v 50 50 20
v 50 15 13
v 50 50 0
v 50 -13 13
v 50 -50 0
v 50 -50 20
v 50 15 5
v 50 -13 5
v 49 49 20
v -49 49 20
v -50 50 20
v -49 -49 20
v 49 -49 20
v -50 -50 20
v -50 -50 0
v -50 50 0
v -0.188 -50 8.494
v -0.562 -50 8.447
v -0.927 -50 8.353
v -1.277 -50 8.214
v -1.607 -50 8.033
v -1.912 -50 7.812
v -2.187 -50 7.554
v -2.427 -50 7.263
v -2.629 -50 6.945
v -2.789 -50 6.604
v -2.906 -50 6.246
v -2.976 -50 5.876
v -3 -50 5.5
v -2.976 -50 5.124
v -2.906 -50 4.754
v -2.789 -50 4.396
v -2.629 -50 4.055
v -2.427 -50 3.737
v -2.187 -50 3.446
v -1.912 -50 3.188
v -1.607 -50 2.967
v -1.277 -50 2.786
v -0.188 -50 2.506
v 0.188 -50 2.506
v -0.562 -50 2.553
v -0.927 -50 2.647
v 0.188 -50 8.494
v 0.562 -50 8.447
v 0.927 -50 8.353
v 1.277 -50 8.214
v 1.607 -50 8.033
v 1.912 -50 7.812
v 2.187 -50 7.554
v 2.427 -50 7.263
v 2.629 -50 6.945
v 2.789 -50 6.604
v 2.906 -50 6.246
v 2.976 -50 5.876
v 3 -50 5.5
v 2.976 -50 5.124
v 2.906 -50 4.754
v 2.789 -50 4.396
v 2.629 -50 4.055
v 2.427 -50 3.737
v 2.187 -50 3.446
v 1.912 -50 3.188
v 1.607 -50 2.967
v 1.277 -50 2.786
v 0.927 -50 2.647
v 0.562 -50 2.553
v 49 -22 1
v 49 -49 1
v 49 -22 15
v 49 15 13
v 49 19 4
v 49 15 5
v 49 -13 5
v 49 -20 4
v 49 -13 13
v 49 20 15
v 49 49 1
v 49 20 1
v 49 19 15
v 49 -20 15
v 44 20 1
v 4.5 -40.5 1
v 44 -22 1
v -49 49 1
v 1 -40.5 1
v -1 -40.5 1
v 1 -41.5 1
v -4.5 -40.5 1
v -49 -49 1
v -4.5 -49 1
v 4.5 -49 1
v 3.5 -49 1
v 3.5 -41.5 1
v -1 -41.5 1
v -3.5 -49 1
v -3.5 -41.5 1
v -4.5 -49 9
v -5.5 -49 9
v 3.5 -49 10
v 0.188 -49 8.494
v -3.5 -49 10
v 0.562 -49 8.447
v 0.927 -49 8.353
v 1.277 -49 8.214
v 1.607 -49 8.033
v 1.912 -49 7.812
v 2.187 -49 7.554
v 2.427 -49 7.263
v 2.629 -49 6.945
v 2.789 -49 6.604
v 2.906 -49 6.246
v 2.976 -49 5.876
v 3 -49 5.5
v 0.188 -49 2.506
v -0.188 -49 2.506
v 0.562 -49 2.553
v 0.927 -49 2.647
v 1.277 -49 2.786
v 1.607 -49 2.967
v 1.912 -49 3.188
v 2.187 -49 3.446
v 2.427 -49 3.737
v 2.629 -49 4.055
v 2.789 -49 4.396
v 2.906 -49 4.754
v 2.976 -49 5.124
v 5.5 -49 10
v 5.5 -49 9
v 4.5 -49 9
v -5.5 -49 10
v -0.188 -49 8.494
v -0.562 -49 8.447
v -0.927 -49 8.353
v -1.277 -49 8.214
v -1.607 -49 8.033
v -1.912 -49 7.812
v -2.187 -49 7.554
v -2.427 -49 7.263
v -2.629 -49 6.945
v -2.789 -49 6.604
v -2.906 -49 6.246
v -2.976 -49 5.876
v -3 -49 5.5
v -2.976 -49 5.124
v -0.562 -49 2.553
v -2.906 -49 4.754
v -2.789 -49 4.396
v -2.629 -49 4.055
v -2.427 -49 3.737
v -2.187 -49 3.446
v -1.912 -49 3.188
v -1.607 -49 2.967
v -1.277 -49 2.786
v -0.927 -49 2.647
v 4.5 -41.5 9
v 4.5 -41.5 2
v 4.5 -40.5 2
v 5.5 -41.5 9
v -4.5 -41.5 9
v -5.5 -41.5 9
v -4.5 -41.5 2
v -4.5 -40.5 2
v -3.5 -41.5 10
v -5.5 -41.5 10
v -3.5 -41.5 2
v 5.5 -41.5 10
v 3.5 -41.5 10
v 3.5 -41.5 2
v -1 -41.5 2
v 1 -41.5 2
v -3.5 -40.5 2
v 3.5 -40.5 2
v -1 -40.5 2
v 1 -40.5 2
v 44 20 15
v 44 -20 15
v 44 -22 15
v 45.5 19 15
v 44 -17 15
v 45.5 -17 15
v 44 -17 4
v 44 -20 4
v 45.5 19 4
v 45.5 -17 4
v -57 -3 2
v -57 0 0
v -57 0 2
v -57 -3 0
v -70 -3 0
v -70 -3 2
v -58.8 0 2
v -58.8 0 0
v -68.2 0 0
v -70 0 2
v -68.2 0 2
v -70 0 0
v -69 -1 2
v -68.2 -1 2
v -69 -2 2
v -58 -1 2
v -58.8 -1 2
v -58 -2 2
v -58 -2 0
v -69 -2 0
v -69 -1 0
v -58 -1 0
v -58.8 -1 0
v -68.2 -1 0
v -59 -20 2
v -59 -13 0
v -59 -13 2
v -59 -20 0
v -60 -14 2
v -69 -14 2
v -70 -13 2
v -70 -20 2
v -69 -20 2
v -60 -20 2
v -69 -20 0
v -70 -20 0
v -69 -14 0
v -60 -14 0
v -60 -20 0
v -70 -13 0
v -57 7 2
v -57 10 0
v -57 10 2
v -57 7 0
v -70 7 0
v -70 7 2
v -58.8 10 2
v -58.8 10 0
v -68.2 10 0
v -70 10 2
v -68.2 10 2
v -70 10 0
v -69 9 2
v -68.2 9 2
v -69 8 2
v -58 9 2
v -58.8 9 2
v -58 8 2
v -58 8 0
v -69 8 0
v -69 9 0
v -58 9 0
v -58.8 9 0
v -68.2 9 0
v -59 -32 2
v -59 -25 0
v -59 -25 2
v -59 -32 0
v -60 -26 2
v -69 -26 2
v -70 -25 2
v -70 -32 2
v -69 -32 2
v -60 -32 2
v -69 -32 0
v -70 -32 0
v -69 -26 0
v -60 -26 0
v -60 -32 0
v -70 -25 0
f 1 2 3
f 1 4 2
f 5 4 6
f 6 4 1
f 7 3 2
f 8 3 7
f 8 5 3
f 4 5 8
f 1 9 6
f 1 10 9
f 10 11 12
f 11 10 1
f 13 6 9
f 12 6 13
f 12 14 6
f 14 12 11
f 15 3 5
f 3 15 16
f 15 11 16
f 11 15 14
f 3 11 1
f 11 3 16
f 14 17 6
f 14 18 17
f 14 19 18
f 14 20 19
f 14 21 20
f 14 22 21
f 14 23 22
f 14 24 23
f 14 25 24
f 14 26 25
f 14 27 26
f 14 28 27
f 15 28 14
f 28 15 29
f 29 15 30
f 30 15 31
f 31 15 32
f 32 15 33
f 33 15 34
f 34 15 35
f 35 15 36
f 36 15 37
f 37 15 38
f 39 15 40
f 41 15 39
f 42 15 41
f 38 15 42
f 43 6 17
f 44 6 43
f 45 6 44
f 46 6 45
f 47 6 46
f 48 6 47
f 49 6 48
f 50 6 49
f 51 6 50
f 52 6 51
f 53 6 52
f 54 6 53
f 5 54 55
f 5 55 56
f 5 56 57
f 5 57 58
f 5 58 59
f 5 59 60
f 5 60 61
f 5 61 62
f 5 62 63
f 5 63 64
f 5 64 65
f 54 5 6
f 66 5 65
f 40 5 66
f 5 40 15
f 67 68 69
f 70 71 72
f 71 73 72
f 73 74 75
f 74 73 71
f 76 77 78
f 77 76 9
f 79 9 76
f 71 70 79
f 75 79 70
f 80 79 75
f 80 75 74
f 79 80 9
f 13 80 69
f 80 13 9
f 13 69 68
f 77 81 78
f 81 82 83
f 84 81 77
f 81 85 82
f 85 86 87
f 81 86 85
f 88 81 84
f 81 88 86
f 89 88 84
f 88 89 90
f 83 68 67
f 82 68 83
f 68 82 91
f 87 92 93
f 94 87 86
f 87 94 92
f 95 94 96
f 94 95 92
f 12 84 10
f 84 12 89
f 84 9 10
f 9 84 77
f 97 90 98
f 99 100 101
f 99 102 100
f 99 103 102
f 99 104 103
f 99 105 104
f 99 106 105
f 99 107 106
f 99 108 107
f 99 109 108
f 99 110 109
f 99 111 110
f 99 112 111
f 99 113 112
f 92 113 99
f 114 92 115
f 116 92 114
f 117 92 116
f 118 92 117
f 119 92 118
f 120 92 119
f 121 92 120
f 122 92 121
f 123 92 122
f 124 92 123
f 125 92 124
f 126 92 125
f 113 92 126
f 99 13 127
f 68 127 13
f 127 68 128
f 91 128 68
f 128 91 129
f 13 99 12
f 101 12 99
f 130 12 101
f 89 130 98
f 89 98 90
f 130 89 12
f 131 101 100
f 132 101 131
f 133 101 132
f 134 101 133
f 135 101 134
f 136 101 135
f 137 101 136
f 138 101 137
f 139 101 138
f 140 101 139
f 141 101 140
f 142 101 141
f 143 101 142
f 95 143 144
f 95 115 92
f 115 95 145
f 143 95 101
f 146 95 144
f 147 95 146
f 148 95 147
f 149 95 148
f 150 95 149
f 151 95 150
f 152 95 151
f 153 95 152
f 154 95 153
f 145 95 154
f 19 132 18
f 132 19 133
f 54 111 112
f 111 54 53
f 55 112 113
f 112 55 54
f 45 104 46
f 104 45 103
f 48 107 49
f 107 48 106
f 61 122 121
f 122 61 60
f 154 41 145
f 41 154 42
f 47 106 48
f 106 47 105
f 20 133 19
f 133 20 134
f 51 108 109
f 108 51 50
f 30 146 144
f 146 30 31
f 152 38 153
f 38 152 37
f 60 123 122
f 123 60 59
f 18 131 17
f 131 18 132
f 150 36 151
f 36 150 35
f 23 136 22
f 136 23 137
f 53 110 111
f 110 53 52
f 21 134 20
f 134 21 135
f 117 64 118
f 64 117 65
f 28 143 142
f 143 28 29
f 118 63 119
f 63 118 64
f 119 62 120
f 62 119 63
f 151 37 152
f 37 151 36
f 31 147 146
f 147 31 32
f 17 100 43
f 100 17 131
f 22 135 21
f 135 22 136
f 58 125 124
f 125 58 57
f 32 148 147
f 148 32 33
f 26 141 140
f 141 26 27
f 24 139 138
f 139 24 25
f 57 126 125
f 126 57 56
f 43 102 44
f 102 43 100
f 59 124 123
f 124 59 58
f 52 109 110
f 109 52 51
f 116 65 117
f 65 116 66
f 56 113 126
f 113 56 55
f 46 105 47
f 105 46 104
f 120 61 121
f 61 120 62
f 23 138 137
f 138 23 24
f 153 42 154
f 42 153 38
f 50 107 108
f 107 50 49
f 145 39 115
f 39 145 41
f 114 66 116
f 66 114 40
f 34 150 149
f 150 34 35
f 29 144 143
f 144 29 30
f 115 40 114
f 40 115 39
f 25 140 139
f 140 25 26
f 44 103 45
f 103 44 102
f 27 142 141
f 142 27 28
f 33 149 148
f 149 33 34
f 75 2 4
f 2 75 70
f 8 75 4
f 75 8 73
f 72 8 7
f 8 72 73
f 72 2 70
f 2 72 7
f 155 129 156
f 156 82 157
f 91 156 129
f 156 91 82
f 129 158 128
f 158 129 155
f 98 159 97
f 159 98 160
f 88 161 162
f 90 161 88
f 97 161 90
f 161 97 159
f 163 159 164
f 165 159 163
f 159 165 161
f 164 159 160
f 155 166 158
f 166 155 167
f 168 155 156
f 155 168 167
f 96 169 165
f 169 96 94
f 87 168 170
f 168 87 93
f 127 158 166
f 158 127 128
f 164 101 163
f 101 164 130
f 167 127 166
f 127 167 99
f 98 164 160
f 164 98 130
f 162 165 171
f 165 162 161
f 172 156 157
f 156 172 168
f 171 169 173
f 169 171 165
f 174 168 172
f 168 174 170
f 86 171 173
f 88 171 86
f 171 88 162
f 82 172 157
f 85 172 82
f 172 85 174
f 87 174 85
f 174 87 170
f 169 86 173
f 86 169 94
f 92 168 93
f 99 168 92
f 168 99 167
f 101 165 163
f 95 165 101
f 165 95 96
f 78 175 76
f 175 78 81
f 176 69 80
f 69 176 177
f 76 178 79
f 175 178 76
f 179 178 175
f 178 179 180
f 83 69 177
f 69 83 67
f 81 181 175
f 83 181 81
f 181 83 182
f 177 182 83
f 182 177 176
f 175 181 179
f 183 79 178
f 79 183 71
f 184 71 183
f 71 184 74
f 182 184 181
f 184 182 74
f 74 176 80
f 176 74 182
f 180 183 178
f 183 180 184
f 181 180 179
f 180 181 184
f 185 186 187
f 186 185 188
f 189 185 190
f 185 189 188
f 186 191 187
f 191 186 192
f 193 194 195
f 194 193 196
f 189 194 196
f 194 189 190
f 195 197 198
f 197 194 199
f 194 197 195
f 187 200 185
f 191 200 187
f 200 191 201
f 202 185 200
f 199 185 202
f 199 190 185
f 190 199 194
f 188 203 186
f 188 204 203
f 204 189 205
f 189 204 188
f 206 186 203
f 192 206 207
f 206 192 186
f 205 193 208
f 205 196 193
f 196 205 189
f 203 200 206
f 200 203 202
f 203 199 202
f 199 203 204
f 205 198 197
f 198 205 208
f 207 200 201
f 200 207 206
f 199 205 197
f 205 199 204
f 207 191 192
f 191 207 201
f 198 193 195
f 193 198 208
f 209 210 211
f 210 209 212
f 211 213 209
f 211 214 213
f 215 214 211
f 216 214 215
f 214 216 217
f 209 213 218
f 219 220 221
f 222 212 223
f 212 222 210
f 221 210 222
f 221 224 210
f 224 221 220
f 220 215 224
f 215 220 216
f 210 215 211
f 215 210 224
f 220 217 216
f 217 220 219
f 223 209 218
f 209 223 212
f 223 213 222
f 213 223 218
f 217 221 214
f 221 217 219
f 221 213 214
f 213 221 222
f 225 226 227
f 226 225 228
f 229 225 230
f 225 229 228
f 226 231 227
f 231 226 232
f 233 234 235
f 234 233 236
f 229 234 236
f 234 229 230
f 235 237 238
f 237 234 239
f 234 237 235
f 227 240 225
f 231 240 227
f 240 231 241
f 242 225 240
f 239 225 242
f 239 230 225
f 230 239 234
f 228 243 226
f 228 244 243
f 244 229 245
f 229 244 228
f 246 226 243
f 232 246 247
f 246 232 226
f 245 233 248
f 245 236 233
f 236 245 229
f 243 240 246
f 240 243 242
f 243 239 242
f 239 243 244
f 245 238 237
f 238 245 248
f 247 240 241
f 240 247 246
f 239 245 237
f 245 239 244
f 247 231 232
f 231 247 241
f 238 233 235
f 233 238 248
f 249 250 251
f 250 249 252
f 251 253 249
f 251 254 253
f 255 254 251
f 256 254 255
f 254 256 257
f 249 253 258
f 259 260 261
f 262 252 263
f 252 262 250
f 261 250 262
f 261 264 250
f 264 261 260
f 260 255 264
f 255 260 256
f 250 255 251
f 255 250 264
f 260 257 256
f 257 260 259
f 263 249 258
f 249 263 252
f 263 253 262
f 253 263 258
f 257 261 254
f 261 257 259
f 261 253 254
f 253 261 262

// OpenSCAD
// file: cover.scad
module cover(x,y,t) {
    n=2;
    d=2;
    cube([x,y,t]);

    translate([x-d,y-d,-2])
    cylinder(h=n,d=d, $fn=50);
    translate([x-d,d,-2])
    cylinder(h=n,d=d, $fn=50);
    translate([d,y-d,-2])
    cylinder(h=n,d=d, $fn=50);
    translate([d,d,-2])
    cylinder(h=n,d=d, $fn=50);
}

// prints

translate([-50,50,1])
rotate([180,0,0])
cover(100,100,1);
// file: display.scad
module display() {
    
    // board
    color("green")
    cube([38,1,12]);

    // display
    color("#444444")
    translate([6, -2, .5])
    cube([30,2,11]);

    // pins
    translate([0,0,.25])
    for (i=[0:3]) {
        color("black")
        translate([0, 1, i*3])
        cube([2.5,2,2.5]);

        color("yellow")
        translate([.75, 2, .75 + (i*3)])
        cube([1,6,1]);

        color("#AAAAAA")
        translate([0.75, -1.5, 0.75 + (i*3)])
        cube([.5,2,.5]);
    }
}

display();
// main file
use <display.scad>;
use <cover.scad>;

// casing

module casing(x,y,h,t=1) {
    color("white")
    translate([0,0,h/2])
    difference(){
        cube([x,y,h], center=true);
        translate([0,0,t])
            cube([x-2*t,y-2*t,h], center=true);
    }
}

// box

module box() {
    // case
    difference() {
        casing(100,100,20,1);

        // cut out hole for the plug
        translate([0,-48, 5.5])
        rotate([90,0,0])
        // the hole is 6mm now, which is the outer ring
        cylinder(h=3, d=6, $fn=50);

        // cut out hole for the display
        translate([51,-13,5])
        rotate([0,0,90])
        cube([28,5,8]);
    }

    translate([0,-50,0])
    fassung();

    translate([47,-20,4])
    rotate([0,0,90])
    display_holder();

    // support: display holder
    translate([49,-22, 0])
    rotate([0,0,90])
    cube([42,5,3]);
}

module display_holder() {

    difference() {
        translate([-2,-2,-1])
        cube([42,5,12]);

        // cut out inner parts
        translate([0,-2-.1,0])
        cube([39,3.5+.1,13]);

        // cut out pins
        translate([0,1,0])
        cube([3,5.5,11.1]);
    }
    
    %display();
}

module fassung() {
    
    w=7;
    h=9;
    d=7.5;

    difference() {
        union () {
            translate([-w/2-1, 0, 0])
                cube([w+2, d+1, h]);
            translate([-w/2-2, 0, h])
                cube([w+4, d+1, 1]);
            translate([-w/2-1, d+1, 1])
                cube([w+2, 1, 1]);
        }
        // cut outs:

        // nose
        translate([-1,d-.1,1])
            cube([2,2.1,1.1]);
        translate([-w/2,-.1,1])
            cube([w,d+1.1,1.1]);
        // top cube 
        translate([-w/2,-.1,2])
            cube([w,d+2.1,h+1.1]);
    }    
}



// buchse

module buchse() {
    w=7;
    h=9;
    d=7.5;

    color("red") union() {
        cube([w,d,h]);
    }
    color("lightblue") {
        translate([w/2,0,h/2])
            rotate([90,0,0])
                cylinder(h=4, d=4, $fn=50);
        translate([w/2,0,h/2])
            rotate([90,0,0])
                cylinder(h=1, d=6, $fn=50);
    }
    color("lightgreen") {
        // front nose
        translate([w/2,0,h+2])
            nose();
        // back nose #1
        rotate([-90,0,0])
        translate([w/2,-0.5,d+1.5])
            nose();
        // back nose #2
        rotate([-90,0,0])
        translate([w/2,-7,d+1.5])
            nose();
    }
}


// flat metal nose

module nose() {
    translate([0,.1,0])
    union() {
        rotate([90,0,0])
            cylinder(h=0.1, d=2, $fn=50);
        translate([-1,-0.1,-2])
            cube([2,0.1,2]);
    }
}

// klammer: oben

module klammer_oben() {
    difference() {
        cube([13,2,3]);
        translate([1,-1,1])
            cube([11,3.1,1]);
        translate([1.8,-1.1,-.1])
            cube([9.4,3.2,1.3]);
    }
}

// klammer: hinten

module klammer_hinten() {
    difference() {
        cube([11,7,2]);
        translate([1,-1,-0.5])
            cube([9,7,3]);
    }
}

// == background

translate([-5.5,-47.5,2.5])
color("#ff000066")
    %klammer_hinten();

translate([-6.5, -48, 8])
color("#ff000066")
    %klammer_oben();

translate([-3.5,-49,1])
    %buchse();

*translate([-50,-50,20])
    %cover(100,100,1);

// == prints

box();

for (i=[0:1]) {
    translate([-70,-0+(i*10),0])
    rotate([90,0,0])
        klammer_oben();
}

for (i=[0:1]) {
    translate([-70,-20-(i*12),0])
        klammer_hinten();
}
